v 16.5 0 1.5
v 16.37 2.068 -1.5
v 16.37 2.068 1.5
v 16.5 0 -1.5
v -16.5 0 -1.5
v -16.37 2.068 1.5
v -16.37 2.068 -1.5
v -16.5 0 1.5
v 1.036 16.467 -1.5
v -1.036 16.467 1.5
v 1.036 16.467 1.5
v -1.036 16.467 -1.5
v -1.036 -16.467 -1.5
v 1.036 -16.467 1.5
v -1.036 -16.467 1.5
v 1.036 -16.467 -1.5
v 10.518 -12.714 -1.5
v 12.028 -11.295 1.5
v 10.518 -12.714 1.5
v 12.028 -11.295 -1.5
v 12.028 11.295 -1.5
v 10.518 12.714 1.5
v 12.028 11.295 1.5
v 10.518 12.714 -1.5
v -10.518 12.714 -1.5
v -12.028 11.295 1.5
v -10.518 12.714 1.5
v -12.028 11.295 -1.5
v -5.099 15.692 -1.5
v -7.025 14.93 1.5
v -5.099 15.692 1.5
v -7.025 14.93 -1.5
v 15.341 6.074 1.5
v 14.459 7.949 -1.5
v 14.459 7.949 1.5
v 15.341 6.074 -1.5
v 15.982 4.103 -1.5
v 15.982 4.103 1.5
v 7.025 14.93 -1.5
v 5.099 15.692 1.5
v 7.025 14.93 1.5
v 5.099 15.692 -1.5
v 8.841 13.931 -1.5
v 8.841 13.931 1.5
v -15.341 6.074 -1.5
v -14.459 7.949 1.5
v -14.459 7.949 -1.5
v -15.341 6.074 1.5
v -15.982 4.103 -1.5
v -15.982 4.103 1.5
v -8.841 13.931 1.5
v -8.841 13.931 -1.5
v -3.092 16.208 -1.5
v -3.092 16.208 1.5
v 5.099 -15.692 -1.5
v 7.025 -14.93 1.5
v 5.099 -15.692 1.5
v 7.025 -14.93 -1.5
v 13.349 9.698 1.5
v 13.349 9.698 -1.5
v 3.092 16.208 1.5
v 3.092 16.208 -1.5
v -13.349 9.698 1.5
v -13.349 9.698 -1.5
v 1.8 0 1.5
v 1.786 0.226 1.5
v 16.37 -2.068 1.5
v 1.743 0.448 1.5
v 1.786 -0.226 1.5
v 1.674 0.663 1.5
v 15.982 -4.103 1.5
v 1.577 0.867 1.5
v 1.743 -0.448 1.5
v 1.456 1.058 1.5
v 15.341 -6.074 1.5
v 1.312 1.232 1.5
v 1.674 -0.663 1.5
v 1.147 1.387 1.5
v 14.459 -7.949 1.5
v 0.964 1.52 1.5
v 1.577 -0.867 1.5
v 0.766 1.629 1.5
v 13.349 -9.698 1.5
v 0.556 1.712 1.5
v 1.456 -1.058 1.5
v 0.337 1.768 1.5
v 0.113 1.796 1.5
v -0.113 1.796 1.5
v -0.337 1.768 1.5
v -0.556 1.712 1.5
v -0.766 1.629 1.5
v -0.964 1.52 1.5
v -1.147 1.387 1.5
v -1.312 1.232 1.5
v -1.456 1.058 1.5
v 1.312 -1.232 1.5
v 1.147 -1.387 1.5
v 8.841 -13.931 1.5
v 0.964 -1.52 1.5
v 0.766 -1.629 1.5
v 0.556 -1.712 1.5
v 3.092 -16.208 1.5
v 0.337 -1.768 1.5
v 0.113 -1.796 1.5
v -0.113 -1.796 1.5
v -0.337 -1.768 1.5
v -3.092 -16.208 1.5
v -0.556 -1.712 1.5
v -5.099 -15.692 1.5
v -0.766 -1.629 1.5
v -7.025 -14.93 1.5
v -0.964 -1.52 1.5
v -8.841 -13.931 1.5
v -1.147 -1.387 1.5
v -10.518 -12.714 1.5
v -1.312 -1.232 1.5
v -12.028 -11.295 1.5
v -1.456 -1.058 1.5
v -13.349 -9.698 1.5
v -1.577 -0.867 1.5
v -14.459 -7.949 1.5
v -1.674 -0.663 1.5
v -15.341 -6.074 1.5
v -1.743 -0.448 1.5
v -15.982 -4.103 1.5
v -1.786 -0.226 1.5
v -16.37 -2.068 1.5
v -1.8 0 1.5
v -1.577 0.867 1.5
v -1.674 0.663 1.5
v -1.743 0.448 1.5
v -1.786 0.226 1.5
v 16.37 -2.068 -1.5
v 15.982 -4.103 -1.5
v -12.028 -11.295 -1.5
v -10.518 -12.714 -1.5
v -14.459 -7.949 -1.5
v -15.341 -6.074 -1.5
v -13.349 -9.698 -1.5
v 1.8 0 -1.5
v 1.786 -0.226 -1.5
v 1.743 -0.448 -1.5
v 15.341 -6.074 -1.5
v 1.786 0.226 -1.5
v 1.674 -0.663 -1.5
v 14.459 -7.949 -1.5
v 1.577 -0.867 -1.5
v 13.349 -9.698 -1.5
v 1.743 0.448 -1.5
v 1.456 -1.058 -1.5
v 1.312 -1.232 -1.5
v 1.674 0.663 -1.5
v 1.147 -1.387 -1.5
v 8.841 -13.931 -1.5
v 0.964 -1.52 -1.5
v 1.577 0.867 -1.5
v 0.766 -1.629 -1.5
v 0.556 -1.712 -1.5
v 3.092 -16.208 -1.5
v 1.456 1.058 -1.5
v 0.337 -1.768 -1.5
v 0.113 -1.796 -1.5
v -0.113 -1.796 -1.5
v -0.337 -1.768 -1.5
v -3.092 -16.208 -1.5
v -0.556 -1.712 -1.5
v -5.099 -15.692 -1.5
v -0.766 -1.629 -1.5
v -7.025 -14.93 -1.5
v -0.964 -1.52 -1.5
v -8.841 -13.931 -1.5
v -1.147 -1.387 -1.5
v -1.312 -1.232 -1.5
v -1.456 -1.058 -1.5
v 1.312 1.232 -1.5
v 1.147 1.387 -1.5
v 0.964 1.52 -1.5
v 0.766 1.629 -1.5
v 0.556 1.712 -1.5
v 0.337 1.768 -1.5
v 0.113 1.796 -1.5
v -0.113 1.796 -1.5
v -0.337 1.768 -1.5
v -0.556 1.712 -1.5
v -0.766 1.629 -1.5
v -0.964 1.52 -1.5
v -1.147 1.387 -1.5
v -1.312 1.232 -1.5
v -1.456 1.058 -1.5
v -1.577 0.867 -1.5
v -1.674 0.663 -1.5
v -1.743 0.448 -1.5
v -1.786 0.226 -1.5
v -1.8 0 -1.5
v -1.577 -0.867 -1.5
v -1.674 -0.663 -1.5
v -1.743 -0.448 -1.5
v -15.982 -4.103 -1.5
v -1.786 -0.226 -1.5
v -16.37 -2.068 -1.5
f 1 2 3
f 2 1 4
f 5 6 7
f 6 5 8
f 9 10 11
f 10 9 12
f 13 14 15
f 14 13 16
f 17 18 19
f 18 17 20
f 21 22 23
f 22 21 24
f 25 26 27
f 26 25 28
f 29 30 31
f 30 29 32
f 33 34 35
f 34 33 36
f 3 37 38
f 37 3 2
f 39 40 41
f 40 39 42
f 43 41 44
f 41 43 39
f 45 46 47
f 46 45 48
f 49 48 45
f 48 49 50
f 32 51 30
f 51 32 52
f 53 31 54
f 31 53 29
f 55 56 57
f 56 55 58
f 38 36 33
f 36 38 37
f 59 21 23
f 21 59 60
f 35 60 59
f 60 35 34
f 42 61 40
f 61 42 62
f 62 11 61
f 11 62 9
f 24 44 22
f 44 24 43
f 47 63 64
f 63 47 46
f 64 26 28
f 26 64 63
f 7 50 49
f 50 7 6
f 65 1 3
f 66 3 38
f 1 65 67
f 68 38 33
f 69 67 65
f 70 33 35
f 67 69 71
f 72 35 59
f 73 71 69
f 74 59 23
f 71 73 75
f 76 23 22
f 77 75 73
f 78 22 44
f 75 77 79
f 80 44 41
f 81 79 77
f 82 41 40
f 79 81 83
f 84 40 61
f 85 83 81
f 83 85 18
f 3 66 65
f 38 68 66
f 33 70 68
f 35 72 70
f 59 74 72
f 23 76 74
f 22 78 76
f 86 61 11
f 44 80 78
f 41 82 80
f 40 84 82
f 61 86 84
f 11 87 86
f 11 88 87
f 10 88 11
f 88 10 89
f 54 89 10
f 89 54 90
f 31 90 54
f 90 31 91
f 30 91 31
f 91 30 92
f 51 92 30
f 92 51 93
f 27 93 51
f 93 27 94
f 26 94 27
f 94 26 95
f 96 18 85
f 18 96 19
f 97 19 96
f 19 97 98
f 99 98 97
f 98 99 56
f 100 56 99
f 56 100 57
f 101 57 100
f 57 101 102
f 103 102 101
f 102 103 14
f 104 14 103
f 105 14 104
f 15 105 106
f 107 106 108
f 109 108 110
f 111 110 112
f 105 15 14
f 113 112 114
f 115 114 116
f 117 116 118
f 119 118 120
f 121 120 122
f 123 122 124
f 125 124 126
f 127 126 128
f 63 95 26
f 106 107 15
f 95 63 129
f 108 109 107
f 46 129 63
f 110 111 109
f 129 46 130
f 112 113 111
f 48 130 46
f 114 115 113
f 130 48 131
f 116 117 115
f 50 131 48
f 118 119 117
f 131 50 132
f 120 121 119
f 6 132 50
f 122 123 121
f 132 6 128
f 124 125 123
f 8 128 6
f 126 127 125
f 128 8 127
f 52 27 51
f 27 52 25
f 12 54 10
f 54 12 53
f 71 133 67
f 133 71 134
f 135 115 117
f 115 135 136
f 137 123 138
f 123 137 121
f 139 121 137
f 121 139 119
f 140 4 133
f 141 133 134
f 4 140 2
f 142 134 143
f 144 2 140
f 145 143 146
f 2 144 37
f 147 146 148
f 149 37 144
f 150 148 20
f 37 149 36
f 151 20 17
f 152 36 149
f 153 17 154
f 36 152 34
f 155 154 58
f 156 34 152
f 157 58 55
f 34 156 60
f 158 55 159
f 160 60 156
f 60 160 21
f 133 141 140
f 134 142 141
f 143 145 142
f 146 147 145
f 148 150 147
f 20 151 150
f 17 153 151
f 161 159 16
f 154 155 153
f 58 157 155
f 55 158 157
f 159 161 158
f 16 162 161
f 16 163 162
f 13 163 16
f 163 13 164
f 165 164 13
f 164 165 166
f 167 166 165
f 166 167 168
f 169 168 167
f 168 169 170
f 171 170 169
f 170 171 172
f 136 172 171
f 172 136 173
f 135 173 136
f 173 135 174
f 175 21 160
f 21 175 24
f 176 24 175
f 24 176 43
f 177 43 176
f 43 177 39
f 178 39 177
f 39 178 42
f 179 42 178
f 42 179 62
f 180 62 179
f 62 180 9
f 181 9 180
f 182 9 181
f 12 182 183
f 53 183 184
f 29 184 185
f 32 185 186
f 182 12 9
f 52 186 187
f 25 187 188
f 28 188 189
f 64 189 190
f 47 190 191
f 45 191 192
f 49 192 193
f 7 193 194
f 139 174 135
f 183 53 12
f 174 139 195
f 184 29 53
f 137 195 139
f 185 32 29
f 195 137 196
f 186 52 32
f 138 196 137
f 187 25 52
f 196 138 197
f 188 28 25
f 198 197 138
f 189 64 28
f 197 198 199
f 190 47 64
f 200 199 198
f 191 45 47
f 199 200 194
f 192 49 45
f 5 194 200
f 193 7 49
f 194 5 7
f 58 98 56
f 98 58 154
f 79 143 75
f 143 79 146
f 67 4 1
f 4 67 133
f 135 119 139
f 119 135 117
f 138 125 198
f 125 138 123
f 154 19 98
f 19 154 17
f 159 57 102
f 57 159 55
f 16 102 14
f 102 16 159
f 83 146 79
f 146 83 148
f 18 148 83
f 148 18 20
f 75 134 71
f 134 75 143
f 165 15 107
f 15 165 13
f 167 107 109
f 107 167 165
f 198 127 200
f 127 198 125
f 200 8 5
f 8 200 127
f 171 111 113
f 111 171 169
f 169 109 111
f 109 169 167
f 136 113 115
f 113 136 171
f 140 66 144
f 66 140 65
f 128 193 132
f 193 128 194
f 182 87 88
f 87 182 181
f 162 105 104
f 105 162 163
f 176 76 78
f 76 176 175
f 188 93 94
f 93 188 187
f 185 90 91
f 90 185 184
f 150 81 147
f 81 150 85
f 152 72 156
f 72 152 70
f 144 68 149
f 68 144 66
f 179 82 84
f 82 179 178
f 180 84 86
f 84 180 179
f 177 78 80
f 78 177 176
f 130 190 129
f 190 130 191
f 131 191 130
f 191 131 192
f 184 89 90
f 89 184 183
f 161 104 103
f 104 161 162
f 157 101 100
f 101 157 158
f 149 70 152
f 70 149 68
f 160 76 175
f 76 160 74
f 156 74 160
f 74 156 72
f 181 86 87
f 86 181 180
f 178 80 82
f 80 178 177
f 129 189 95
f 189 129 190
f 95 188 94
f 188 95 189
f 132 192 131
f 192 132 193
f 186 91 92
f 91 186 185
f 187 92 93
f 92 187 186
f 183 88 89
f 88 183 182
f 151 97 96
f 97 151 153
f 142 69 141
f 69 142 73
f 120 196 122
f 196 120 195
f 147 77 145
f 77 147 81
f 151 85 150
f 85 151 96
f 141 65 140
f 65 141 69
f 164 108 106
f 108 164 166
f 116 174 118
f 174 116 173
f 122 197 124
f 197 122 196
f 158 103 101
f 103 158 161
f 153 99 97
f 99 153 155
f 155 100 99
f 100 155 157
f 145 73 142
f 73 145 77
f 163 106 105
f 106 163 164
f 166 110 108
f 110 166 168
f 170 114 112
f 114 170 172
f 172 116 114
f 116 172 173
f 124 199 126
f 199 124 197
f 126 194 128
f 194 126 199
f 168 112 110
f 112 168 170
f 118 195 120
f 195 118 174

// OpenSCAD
$fn = 50;


difference() {
	union() {
		translate(v = [0, 0, -1.5000000000]) {
			cylinder(h = 3, r = 16.5000000000);
		}
	}
	union() {
		translate(v = [0, 0, -100.0000000000]) {
			cylinder(h = 200, r = 1.8000000000);
		}
	}
}
